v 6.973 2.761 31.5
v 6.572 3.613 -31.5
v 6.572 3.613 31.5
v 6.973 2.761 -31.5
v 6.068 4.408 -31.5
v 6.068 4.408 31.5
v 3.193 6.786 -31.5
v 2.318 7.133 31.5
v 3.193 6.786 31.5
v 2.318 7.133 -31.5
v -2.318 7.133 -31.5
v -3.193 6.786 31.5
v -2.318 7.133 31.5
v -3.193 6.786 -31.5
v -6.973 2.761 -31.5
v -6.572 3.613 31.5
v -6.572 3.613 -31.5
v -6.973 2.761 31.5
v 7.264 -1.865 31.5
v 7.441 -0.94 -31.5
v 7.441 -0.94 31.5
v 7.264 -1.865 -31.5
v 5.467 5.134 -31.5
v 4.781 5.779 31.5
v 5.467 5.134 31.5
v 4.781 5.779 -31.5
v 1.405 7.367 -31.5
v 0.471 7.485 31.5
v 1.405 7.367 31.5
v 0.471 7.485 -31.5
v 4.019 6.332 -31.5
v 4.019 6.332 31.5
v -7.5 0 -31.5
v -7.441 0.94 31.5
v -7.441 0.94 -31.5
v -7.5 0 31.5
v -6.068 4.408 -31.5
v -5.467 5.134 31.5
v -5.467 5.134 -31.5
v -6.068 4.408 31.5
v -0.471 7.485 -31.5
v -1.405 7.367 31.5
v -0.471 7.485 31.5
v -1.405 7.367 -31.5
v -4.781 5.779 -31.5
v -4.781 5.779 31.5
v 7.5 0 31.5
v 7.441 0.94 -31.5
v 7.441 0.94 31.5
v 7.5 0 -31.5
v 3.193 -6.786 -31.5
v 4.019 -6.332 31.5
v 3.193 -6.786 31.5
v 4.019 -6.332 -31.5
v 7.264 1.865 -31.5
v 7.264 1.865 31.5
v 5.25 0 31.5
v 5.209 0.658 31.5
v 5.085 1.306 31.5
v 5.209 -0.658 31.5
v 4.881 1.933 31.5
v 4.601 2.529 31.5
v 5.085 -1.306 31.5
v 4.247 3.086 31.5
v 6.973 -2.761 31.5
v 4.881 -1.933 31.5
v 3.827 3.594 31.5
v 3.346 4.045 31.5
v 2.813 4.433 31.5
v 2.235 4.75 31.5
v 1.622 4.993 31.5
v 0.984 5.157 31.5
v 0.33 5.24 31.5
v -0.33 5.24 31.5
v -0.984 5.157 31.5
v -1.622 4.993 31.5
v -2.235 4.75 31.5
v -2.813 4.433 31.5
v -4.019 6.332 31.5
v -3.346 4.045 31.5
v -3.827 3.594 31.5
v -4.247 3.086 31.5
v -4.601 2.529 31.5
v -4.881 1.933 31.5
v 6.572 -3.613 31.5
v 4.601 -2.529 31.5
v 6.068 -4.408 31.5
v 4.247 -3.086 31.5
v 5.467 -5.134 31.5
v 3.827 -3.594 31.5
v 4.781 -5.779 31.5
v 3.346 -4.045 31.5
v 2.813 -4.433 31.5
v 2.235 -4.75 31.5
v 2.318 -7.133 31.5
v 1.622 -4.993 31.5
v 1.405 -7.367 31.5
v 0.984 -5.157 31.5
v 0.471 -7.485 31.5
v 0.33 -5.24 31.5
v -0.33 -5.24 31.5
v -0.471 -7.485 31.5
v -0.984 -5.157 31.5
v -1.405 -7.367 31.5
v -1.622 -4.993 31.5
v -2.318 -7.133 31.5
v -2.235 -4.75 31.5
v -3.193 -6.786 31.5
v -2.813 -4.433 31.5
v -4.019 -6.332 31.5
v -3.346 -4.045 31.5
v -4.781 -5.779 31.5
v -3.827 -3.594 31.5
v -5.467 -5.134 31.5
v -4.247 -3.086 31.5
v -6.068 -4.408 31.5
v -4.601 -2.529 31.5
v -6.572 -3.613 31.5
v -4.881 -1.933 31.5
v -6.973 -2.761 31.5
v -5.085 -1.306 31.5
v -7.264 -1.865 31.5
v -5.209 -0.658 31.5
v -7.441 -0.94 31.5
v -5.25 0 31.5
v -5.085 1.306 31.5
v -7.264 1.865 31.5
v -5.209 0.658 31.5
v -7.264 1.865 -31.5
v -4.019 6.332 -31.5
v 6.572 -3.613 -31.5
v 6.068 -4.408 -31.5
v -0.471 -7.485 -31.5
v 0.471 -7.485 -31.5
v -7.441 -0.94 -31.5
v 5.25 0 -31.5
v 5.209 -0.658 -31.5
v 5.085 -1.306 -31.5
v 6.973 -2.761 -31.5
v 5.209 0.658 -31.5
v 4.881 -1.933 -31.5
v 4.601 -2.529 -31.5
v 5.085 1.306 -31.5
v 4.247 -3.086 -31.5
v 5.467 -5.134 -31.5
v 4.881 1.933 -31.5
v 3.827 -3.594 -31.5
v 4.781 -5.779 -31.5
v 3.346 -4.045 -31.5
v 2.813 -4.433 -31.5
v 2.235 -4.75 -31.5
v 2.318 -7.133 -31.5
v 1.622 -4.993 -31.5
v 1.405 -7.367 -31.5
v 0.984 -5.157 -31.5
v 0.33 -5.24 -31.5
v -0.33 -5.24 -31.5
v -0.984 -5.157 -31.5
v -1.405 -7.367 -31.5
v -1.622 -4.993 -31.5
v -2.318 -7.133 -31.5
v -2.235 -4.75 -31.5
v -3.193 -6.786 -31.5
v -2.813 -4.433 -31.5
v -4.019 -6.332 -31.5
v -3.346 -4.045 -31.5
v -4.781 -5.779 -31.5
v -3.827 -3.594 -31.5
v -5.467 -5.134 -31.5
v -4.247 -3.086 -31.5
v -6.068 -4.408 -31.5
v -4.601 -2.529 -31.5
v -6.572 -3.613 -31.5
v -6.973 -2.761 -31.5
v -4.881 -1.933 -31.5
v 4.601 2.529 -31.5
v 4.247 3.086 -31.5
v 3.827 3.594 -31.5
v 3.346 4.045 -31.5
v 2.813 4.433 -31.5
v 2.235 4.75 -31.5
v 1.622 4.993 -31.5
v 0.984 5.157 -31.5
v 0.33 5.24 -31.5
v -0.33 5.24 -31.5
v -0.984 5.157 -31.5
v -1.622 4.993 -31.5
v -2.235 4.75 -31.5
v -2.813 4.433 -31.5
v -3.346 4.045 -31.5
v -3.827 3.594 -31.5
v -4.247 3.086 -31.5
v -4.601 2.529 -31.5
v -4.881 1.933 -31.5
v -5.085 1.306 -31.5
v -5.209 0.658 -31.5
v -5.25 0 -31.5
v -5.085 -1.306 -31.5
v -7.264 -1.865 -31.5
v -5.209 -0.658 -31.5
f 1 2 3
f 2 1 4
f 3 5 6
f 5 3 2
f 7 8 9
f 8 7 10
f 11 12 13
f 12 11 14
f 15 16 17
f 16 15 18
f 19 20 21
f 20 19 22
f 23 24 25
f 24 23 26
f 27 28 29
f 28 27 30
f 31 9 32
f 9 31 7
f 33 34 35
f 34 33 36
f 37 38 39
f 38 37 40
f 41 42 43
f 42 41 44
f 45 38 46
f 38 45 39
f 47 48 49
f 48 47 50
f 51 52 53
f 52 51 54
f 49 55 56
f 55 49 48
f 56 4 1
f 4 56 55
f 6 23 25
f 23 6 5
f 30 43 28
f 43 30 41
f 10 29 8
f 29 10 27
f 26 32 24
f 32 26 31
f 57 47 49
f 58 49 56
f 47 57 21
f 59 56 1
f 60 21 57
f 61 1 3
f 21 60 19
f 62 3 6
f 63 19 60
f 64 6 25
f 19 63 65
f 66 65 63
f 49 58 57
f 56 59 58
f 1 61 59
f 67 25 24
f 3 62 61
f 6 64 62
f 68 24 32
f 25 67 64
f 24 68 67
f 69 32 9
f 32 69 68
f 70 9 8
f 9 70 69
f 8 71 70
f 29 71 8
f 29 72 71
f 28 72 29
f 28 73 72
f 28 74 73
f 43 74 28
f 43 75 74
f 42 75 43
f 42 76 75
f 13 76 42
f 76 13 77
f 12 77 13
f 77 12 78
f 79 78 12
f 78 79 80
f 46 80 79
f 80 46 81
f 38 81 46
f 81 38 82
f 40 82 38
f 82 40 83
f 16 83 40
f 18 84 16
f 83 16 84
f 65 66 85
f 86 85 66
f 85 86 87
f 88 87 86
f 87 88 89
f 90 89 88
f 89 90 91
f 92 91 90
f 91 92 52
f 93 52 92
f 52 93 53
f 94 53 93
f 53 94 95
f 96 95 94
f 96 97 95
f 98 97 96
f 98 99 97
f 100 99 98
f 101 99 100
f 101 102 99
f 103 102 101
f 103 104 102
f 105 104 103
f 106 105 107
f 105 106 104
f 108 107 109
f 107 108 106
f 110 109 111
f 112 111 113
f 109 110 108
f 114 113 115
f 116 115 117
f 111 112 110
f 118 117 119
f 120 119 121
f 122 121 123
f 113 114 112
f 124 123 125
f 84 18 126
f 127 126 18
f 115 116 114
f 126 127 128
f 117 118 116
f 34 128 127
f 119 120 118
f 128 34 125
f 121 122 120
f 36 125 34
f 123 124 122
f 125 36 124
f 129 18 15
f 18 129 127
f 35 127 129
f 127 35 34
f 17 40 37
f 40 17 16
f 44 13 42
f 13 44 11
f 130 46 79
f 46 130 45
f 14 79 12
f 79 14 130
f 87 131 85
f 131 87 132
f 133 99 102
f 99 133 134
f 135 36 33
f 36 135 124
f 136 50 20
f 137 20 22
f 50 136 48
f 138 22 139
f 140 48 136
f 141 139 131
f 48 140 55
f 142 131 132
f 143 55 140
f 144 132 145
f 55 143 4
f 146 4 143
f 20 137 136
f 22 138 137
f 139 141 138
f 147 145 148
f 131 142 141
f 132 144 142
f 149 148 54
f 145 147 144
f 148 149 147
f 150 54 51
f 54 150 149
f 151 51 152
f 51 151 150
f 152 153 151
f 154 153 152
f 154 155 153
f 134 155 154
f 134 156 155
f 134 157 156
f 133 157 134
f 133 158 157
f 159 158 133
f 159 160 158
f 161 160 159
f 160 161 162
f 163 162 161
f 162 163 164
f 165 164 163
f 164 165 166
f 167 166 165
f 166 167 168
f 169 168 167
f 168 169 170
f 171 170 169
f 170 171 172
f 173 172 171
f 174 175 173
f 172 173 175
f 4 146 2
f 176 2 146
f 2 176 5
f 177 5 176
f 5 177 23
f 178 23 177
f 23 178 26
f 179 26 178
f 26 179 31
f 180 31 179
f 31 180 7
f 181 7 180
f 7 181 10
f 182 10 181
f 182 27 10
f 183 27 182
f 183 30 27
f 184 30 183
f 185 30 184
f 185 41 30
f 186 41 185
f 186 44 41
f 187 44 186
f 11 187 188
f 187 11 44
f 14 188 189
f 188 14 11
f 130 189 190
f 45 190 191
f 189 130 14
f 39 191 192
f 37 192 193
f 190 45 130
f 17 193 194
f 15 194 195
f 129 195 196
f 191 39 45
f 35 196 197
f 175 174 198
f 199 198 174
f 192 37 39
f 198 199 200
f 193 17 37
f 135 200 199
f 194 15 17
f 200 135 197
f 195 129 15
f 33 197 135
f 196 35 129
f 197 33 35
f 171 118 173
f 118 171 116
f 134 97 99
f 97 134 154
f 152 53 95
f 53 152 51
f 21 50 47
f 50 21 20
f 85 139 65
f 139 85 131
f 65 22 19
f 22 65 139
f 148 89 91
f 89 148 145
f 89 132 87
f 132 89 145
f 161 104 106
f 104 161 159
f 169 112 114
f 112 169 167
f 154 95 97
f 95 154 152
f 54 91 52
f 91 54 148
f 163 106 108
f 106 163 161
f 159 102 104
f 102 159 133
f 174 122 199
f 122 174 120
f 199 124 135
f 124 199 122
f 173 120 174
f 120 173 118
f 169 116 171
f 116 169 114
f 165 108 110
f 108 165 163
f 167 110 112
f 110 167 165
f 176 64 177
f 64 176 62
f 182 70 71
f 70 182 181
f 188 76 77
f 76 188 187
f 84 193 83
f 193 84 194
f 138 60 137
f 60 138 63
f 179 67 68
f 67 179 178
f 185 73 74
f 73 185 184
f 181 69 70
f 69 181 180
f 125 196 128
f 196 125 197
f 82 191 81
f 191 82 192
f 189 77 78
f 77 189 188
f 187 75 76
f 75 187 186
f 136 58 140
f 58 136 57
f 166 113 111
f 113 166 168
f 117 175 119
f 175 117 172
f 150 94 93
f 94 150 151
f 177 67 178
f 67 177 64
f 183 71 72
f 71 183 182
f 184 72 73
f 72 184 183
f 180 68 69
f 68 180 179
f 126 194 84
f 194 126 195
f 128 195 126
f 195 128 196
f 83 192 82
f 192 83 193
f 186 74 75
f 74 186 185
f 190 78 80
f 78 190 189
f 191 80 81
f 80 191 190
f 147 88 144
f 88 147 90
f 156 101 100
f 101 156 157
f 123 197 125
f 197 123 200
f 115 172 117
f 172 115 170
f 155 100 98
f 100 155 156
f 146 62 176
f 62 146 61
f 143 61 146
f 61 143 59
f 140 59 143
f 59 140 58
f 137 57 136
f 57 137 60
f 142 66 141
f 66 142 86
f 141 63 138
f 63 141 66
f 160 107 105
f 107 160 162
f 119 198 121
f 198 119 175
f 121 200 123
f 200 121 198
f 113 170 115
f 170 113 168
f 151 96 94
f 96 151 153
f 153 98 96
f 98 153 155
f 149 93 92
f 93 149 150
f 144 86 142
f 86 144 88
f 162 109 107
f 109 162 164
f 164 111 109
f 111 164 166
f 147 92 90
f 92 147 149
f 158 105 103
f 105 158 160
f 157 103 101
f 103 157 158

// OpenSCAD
$fn = 50;


difference() {
	union() {
		translate(v = [0, 0, -31.5000000000]) {
			cylinder(h = 63, r = 7.5000000000);
		}
	}
	union() {
		translate(v = [0, 0, -100.0000000000]) {
			cylinder(h = 200, r = 5.2500000000);
		}
	}
}
